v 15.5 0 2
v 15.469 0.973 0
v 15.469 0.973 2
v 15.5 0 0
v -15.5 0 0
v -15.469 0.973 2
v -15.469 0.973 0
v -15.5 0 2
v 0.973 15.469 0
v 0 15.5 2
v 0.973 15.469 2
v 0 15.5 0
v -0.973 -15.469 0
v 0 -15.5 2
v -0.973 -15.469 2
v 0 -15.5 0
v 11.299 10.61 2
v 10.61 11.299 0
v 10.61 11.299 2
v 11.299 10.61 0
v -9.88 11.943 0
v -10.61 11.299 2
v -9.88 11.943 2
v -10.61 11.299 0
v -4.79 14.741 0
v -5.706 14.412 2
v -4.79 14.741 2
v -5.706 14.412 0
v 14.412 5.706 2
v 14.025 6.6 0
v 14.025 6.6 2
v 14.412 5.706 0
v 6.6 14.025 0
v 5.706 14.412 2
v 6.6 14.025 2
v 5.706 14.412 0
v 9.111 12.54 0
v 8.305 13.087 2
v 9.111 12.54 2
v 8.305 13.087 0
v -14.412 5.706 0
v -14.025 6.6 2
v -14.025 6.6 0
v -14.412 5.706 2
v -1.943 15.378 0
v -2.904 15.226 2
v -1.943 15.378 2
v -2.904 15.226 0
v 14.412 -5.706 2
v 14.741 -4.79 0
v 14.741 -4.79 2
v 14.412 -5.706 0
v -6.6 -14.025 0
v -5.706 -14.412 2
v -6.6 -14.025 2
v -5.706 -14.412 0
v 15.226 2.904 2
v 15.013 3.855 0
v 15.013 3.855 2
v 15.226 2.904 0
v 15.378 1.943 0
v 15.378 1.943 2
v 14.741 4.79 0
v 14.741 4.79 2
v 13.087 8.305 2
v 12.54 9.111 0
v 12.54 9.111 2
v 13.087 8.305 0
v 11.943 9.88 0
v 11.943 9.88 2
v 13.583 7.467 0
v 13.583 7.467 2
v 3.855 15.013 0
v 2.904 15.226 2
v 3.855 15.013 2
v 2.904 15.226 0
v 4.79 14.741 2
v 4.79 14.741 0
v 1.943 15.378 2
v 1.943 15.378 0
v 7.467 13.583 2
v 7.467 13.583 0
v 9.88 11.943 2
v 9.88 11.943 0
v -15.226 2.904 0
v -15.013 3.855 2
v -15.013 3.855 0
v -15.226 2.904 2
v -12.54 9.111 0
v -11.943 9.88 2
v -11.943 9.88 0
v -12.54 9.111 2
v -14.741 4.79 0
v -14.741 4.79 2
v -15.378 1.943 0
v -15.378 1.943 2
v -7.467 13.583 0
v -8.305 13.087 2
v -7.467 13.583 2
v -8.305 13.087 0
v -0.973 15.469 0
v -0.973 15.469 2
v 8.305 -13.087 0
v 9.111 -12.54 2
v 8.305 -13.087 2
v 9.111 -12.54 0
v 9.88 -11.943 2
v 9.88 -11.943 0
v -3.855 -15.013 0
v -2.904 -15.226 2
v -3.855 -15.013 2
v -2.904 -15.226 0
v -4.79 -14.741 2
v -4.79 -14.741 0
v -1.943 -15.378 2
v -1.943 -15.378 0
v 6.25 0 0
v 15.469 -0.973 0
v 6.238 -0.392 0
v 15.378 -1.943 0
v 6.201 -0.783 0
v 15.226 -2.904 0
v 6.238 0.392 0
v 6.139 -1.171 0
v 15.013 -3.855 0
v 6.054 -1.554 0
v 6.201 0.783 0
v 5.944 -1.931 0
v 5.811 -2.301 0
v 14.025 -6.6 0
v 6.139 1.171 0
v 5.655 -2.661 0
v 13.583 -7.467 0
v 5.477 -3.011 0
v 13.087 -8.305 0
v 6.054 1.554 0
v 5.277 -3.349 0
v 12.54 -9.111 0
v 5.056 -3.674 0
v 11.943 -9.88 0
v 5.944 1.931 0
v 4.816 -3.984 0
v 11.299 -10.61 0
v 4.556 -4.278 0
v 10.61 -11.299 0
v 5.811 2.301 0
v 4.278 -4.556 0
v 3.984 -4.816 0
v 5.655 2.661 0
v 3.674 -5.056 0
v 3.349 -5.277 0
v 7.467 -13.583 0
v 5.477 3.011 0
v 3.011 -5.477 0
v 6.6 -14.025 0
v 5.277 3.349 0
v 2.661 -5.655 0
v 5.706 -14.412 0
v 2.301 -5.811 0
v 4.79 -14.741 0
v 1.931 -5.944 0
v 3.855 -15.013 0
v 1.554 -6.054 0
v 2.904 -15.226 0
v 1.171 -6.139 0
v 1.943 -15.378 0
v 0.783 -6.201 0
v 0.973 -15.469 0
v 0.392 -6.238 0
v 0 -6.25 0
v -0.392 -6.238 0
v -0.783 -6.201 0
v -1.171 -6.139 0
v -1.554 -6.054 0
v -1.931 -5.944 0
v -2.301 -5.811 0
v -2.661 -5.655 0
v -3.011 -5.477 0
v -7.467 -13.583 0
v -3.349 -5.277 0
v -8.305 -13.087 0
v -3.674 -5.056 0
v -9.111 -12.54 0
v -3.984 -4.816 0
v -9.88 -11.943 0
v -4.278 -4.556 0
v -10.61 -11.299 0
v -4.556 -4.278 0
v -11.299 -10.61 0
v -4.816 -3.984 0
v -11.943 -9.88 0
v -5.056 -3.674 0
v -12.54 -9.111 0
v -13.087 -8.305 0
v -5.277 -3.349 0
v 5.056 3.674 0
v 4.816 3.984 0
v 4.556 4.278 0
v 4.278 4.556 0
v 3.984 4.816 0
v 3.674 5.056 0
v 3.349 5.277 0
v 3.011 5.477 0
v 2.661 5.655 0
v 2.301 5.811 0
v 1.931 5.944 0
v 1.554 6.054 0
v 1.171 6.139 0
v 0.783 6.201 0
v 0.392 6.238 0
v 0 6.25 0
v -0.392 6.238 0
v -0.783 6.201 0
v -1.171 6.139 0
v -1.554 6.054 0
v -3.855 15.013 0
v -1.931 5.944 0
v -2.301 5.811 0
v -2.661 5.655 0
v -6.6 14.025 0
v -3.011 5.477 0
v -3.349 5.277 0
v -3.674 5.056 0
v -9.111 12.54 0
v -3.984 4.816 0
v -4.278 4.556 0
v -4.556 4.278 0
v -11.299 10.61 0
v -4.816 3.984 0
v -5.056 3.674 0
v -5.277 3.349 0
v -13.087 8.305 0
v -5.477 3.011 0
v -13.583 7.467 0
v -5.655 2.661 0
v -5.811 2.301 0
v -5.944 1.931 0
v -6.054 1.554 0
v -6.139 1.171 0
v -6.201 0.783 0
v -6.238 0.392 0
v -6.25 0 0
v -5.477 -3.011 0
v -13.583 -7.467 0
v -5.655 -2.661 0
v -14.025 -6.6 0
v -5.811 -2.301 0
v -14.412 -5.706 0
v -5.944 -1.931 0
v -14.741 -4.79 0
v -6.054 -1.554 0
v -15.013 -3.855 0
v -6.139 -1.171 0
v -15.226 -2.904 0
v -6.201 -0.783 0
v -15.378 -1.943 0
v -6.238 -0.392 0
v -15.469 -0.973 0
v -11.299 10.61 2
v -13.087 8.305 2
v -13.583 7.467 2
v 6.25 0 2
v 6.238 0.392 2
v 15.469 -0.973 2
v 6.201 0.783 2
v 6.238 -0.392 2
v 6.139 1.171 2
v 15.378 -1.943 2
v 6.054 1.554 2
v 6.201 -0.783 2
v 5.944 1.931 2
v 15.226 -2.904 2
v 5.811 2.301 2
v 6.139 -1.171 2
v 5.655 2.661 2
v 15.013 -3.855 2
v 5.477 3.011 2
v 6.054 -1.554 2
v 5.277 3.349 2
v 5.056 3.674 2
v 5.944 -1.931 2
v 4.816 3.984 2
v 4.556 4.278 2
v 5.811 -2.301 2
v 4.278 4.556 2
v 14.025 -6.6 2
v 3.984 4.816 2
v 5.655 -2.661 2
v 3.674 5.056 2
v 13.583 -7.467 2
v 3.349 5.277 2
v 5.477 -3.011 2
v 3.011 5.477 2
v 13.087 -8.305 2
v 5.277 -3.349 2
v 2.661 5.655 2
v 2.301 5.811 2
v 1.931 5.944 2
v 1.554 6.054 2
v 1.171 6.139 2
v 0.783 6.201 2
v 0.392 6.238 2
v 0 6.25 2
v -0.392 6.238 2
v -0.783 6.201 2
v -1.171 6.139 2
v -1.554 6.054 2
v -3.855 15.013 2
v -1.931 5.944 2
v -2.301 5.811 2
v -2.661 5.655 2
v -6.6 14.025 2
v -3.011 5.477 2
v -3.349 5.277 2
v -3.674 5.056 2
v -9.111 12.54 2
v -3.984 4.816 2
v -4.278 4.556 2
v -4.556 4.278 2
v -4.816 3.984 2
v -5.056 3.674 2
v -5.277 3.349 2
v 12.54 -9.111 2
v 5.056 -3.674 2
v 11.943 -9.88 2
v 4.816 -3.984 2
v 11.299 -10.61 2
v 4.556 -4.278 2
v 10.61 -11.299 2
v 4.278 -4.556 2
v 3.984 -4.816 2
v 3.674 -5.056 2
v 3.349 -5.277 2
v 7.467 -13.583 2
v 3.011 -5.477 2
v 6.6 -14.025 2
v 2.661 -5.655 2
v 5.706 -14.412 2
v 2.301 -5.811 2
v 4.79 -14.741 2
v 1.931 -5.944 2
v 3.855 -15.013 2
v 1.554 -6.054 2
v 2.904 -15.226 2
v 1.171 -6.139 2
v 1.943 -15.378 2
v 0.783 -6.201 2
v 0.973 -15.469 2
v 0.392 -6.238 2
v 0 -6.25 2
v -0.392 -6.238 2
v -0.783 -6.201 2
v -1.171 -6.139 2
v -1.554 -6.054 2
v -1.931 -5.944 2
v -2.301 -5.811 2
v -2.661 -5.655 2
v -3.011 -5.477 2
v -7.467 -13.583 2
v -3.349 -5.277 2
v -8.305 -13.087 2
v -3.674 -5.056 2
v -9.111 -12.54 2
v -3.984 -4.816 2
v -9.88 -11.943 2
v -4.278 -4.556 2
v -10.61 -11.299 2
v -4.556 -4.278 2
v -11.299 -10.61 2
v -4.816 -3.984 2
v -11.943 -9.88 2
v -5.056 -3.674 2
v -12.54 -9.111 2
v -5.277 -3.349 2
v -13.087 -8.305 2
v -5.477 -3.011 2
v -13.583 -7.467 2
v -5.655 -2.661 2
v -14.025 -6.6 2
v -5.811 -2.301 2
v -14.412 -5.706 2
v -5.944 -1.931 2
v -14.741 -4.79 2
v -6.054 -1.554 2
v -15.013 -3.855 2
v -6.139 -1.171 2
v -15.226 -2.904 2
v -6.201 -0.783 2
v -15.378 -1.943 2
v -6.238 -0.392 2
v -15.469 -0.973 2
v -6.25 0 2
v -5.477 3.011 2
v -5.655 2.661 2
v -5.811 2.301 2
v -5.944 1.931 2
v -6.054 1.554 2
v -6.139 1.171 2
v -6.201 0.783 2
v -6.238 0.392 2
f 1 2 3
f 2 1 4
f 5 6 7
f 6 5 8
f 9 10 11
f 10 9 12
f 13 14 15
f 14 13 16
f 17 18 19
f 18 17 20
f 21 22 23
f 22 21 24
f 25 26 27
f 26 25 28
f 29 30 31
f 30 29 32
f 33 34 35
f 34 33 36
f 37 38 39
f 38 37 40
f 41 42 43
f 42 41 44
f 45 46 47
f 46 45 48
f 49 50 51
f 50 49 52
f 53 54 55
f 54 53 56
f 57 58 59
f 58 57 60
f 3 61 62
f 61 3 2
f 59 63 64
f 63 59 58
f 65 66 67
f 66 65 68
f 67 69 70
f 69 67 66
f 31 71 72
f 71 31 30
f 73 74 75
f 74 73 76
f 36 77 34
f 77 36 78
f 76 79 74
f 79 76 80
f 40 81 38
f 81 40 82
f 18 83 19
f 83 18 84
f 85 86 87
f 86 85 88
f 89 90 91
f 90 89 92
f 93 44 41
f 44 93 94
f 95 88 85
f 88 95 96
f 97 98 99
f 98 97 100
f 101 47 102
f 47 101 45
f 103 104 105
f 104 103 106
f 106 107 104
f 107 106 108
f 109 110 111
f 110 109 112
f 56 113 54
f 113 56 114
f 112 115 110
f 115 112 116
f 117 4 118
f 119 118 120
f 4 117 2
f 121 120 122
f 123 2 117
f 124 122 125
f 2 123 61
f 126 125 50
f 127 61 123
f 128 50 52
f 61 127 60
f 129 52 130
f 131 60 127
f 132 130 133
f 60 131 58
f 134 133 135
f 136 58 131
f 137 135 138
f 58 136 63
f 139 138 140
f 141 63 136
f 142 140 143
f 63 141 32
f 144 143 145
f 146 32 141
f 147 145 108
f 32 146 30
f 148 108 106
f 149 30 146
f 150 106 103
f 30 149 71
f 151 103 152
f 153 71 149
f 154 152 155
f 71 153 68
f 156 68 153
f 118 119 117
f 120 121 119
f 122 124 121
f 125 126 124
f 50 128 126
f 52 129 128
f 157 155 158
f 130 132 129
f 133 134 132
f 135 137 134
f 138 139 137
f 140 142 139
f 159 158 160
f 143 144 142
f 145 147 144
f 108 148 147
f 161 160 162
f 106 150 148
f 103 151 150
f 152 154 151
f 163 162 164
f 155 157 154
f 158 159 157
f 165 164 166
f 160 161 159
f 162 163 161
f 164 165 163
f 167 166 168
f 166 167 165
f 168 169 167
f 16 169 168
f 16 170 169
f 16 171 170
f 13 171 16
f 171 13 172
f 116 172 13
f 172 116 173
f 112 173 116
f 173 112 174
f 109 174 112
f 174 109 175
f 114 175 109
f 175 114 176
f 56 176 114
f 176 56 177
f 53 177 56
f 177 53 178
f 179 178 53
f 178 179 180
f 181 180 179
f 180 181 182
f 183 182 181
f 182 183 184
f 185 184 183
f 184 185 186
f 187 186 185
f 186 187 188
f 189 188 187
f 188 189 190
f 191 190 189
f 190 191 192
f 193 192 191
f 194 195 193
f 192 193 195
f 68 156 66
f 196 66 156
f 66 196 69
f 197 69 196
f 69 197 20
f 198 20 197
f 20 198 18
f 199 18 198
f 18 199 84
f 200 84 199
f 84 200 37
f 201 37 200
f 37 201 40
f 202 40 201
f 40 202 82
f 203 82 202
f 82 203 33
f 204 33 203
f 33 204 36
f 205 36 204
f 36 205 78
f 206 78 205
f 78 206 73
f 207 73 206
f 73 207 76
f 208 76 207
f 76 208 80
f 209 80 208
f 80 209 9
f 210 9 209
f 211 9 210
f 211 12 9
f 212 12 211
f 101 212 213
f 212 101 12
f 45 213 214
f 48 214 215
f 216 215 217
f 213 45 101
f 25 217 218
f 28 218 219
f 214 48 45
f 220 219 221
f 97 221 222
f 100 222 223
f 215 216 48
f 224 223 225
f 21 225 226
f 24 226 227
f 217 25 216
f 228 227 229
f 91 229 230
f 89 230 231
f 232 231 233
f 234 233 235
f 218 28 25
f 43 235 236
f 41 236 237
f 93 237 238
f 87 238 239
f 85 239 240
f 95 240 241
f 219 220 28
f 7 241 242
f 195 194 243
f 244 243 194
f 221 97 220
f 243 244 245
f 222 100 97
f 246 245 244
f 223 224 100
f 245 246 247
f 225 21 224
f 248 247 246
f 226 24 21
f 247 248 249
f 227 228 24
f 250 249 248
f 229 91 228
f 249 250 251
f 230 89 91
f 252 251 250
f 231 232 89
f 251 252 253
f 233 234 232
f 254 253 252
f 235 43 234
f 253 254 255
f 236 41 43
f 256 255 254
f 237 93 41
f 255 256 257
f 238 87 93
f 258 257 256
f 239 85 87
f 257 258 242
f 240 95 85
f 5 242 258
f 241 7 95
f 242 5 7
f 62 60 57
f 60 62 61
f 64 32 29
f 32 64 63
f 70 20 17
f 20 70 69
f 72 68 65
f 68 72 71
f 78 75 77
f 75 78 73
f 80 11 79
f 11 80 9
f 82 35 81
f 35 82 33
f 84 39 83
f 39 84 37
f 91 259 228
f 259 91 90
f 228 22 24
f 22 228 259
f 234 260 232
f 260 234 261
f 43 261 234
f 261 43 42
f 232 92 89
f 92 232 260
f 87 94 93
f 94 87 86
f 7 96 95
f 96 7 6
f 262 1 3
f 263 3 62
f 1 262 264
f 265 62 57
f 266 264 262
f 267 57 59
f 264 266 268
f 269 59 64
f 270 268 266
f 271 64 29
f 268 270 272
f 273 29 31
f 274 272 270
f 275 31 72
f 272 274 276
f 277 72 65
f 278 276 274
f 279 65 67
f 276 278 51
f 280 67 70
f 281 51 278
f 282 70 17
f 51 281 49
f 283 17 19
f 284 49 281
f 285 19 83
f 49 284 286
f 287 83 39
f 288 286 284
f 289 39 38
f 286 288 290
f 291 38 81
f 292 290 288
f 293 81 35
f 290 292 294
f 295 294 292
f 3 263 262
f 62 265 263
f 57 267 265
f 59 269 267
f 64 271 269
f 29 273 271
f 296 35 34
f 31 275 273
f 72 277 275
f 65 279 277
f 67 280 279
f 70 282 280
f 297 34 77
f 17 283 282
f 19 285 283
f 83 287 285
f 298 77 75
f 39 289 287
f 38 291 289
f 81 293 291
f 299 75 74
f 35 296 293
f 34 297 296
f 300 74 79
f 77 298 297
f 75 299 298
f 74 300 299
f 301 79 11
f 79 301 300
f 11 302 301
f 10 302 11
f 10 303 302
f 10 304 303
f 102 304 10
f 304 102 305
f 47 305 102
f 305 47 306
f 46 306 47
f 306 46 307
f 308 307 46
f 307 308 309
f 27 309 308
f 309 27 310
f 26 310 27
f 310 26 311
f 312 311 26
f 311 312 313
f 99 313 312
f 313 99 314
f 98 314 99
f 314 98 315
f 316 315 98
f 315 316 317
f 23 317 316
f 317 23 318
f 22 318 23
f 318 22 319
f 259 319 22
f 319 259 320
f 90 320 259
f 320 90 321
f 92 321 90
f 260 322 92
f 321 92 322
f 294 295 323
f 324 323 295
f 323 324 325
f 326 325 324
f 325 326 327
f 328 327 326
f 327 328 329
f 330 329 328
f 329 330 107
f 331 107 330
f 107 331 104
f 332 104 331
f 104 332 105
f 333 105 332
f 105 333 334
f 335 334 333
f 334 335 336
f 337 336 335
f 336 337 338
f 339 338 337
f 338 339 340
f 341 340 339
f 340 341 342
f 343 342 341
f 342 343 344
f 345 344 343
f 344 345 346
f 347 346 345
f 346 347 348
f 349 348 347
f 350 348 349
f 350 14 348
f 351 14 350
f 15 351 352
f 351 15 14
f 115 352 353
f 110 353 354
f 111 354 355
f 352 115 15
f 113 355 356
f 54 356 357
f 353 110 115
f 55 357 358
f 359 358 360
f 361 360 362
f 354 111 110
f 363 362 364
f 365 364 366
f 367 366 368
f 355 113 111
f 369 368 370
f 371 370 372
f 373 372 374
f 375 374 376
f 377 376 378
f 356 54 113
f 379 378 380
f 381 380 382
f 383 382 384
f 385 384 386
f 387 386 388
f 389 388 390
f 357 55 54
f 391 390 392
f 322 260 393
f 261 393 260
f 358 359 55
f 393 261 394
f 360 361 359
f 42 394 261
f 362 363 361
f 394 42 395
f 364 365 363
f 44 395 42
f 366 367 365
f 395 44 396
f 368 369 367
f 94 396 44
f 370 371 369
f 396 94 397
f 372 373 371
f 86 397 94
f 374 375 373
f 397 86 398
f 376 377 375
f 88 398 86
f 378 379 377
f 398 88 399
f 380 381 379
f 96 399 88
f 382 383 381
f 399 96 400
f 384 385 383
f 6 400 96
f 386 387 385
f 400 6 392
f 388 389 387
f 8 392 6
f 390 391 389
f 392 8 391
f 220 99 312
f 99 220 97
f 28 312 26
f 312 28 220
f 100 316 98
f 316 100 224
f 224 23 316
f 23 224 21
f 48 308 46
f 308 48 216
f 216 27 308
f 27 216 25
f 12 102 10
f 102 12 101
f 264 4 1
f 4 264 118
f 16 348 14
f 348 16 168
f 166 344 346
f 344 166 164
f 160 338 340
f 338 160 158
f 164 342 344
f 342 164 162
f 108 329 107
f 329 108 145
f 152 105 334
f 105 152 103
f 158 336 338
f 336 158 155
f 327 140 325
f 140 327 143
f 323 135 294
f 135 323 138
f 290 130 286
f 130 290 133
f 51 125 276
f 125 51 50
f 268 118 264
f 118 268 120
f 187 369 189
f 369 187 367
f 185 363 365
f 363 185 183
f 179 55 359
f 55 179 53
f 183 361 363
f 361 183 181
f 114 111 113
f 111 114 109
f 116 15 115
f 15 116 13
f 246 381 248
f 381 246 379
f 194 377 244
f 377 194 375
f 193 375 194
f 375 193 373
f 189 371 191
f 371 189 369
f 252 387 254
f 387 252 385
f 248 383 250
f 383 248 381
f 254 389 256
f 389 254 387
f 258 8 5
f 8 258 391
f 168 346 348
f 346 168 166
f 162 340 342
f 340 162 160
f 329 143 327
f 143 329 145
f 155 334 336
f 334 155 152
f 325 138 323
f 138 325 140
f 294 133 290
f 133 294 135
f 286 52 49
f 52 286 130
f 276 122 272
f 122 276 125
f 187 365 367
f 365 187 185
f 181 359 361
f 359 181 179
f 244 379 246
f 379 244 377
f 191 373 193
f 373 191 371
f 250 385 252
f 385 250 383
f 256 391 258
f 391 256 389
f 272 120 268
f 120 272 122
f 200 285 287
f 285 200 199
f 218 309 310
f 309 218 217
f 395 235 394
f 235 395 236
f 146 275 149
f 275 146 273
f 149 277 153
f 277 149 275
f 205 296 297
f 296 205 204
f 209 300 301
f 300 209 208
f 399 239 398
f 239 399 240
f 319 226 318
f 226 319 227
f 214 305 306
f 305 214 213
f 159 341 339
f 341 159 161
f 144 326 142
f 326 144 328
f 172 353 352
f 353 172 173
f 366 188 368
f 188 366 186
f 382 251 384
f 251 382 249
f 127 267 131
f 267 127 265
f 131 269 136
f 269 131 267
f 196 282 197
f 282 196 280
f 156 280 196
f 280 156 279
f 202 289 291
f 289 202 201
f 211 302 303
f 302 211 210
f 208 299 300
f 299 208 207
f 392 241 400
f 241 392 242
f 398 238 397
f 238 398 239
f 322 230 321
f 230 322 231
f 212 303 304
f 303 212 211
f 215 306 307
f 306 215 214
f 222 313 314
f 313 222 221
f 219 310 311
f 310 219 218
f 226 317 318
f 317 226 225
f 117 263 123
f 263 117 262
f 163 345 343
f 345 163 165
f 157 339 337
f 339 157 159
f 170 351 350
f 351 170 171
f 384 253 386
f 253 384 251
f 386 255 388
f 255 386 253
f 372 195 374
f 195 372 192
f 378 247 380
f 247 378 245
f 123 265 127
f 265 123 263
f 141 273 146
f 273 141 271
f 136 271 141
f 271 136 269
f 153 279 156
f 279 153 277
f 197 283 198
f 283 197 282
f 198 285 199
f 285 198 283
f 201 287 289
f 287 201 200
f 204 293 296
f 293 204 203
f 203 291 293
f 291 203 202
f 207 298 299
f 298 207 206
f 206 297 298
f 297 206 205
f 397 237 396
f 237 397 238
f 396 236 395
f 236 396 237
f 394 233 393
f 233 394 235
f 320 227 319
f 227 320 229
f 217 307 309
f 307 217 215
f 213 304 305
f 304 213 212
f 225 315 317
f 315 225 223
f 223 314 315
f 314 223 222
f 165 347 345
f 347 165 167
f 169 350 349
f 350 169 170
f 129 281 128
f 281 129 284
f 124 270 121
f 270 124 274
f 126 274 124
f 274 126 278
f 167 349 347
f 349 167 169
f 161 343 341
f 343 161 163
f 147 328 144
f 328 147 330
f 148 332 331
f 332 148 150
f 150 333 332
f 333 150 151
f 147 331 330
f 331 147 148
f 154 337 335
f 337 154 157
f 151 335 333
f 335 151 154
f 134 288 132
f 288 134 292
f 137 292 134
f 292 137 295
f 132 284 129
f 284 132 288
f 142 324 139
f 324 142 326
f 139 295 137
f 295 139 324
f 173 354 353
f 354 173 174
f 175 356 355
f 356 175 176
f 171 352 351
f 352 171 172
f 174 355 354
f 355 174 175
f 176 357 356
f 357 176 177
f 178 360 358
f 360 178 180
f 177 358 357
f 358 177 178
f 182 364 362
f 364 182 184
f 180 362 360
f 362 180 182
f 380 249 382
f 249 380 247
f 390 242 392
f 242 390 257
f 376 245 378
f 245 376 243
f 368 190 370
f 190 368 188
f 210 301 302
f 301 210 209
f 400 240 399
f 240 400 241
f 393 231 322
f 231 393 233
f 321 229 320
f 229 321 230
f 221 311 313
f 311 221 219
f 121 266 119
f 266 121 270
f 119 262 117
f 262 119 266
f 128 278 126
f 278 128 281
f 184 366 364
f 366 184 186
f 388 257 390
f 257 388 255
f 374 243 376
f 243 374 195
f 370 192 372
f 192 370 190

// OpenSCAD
//fn=numb of fragments; fa=min angle; fs=min size

$fn=100;
$fa=12;
$fs=2;

//D tubo para la base
Dte=31;
//Altura base exterior
He=2;

//D diafragma
Df=12.5;
Hf=2;

difference(){
        cylinder(h=He ,d=Dte ,center=false);
        translate([0,0,-Hf])cylinder(h=Hf*4 ,d=Df ,center=false);
}
